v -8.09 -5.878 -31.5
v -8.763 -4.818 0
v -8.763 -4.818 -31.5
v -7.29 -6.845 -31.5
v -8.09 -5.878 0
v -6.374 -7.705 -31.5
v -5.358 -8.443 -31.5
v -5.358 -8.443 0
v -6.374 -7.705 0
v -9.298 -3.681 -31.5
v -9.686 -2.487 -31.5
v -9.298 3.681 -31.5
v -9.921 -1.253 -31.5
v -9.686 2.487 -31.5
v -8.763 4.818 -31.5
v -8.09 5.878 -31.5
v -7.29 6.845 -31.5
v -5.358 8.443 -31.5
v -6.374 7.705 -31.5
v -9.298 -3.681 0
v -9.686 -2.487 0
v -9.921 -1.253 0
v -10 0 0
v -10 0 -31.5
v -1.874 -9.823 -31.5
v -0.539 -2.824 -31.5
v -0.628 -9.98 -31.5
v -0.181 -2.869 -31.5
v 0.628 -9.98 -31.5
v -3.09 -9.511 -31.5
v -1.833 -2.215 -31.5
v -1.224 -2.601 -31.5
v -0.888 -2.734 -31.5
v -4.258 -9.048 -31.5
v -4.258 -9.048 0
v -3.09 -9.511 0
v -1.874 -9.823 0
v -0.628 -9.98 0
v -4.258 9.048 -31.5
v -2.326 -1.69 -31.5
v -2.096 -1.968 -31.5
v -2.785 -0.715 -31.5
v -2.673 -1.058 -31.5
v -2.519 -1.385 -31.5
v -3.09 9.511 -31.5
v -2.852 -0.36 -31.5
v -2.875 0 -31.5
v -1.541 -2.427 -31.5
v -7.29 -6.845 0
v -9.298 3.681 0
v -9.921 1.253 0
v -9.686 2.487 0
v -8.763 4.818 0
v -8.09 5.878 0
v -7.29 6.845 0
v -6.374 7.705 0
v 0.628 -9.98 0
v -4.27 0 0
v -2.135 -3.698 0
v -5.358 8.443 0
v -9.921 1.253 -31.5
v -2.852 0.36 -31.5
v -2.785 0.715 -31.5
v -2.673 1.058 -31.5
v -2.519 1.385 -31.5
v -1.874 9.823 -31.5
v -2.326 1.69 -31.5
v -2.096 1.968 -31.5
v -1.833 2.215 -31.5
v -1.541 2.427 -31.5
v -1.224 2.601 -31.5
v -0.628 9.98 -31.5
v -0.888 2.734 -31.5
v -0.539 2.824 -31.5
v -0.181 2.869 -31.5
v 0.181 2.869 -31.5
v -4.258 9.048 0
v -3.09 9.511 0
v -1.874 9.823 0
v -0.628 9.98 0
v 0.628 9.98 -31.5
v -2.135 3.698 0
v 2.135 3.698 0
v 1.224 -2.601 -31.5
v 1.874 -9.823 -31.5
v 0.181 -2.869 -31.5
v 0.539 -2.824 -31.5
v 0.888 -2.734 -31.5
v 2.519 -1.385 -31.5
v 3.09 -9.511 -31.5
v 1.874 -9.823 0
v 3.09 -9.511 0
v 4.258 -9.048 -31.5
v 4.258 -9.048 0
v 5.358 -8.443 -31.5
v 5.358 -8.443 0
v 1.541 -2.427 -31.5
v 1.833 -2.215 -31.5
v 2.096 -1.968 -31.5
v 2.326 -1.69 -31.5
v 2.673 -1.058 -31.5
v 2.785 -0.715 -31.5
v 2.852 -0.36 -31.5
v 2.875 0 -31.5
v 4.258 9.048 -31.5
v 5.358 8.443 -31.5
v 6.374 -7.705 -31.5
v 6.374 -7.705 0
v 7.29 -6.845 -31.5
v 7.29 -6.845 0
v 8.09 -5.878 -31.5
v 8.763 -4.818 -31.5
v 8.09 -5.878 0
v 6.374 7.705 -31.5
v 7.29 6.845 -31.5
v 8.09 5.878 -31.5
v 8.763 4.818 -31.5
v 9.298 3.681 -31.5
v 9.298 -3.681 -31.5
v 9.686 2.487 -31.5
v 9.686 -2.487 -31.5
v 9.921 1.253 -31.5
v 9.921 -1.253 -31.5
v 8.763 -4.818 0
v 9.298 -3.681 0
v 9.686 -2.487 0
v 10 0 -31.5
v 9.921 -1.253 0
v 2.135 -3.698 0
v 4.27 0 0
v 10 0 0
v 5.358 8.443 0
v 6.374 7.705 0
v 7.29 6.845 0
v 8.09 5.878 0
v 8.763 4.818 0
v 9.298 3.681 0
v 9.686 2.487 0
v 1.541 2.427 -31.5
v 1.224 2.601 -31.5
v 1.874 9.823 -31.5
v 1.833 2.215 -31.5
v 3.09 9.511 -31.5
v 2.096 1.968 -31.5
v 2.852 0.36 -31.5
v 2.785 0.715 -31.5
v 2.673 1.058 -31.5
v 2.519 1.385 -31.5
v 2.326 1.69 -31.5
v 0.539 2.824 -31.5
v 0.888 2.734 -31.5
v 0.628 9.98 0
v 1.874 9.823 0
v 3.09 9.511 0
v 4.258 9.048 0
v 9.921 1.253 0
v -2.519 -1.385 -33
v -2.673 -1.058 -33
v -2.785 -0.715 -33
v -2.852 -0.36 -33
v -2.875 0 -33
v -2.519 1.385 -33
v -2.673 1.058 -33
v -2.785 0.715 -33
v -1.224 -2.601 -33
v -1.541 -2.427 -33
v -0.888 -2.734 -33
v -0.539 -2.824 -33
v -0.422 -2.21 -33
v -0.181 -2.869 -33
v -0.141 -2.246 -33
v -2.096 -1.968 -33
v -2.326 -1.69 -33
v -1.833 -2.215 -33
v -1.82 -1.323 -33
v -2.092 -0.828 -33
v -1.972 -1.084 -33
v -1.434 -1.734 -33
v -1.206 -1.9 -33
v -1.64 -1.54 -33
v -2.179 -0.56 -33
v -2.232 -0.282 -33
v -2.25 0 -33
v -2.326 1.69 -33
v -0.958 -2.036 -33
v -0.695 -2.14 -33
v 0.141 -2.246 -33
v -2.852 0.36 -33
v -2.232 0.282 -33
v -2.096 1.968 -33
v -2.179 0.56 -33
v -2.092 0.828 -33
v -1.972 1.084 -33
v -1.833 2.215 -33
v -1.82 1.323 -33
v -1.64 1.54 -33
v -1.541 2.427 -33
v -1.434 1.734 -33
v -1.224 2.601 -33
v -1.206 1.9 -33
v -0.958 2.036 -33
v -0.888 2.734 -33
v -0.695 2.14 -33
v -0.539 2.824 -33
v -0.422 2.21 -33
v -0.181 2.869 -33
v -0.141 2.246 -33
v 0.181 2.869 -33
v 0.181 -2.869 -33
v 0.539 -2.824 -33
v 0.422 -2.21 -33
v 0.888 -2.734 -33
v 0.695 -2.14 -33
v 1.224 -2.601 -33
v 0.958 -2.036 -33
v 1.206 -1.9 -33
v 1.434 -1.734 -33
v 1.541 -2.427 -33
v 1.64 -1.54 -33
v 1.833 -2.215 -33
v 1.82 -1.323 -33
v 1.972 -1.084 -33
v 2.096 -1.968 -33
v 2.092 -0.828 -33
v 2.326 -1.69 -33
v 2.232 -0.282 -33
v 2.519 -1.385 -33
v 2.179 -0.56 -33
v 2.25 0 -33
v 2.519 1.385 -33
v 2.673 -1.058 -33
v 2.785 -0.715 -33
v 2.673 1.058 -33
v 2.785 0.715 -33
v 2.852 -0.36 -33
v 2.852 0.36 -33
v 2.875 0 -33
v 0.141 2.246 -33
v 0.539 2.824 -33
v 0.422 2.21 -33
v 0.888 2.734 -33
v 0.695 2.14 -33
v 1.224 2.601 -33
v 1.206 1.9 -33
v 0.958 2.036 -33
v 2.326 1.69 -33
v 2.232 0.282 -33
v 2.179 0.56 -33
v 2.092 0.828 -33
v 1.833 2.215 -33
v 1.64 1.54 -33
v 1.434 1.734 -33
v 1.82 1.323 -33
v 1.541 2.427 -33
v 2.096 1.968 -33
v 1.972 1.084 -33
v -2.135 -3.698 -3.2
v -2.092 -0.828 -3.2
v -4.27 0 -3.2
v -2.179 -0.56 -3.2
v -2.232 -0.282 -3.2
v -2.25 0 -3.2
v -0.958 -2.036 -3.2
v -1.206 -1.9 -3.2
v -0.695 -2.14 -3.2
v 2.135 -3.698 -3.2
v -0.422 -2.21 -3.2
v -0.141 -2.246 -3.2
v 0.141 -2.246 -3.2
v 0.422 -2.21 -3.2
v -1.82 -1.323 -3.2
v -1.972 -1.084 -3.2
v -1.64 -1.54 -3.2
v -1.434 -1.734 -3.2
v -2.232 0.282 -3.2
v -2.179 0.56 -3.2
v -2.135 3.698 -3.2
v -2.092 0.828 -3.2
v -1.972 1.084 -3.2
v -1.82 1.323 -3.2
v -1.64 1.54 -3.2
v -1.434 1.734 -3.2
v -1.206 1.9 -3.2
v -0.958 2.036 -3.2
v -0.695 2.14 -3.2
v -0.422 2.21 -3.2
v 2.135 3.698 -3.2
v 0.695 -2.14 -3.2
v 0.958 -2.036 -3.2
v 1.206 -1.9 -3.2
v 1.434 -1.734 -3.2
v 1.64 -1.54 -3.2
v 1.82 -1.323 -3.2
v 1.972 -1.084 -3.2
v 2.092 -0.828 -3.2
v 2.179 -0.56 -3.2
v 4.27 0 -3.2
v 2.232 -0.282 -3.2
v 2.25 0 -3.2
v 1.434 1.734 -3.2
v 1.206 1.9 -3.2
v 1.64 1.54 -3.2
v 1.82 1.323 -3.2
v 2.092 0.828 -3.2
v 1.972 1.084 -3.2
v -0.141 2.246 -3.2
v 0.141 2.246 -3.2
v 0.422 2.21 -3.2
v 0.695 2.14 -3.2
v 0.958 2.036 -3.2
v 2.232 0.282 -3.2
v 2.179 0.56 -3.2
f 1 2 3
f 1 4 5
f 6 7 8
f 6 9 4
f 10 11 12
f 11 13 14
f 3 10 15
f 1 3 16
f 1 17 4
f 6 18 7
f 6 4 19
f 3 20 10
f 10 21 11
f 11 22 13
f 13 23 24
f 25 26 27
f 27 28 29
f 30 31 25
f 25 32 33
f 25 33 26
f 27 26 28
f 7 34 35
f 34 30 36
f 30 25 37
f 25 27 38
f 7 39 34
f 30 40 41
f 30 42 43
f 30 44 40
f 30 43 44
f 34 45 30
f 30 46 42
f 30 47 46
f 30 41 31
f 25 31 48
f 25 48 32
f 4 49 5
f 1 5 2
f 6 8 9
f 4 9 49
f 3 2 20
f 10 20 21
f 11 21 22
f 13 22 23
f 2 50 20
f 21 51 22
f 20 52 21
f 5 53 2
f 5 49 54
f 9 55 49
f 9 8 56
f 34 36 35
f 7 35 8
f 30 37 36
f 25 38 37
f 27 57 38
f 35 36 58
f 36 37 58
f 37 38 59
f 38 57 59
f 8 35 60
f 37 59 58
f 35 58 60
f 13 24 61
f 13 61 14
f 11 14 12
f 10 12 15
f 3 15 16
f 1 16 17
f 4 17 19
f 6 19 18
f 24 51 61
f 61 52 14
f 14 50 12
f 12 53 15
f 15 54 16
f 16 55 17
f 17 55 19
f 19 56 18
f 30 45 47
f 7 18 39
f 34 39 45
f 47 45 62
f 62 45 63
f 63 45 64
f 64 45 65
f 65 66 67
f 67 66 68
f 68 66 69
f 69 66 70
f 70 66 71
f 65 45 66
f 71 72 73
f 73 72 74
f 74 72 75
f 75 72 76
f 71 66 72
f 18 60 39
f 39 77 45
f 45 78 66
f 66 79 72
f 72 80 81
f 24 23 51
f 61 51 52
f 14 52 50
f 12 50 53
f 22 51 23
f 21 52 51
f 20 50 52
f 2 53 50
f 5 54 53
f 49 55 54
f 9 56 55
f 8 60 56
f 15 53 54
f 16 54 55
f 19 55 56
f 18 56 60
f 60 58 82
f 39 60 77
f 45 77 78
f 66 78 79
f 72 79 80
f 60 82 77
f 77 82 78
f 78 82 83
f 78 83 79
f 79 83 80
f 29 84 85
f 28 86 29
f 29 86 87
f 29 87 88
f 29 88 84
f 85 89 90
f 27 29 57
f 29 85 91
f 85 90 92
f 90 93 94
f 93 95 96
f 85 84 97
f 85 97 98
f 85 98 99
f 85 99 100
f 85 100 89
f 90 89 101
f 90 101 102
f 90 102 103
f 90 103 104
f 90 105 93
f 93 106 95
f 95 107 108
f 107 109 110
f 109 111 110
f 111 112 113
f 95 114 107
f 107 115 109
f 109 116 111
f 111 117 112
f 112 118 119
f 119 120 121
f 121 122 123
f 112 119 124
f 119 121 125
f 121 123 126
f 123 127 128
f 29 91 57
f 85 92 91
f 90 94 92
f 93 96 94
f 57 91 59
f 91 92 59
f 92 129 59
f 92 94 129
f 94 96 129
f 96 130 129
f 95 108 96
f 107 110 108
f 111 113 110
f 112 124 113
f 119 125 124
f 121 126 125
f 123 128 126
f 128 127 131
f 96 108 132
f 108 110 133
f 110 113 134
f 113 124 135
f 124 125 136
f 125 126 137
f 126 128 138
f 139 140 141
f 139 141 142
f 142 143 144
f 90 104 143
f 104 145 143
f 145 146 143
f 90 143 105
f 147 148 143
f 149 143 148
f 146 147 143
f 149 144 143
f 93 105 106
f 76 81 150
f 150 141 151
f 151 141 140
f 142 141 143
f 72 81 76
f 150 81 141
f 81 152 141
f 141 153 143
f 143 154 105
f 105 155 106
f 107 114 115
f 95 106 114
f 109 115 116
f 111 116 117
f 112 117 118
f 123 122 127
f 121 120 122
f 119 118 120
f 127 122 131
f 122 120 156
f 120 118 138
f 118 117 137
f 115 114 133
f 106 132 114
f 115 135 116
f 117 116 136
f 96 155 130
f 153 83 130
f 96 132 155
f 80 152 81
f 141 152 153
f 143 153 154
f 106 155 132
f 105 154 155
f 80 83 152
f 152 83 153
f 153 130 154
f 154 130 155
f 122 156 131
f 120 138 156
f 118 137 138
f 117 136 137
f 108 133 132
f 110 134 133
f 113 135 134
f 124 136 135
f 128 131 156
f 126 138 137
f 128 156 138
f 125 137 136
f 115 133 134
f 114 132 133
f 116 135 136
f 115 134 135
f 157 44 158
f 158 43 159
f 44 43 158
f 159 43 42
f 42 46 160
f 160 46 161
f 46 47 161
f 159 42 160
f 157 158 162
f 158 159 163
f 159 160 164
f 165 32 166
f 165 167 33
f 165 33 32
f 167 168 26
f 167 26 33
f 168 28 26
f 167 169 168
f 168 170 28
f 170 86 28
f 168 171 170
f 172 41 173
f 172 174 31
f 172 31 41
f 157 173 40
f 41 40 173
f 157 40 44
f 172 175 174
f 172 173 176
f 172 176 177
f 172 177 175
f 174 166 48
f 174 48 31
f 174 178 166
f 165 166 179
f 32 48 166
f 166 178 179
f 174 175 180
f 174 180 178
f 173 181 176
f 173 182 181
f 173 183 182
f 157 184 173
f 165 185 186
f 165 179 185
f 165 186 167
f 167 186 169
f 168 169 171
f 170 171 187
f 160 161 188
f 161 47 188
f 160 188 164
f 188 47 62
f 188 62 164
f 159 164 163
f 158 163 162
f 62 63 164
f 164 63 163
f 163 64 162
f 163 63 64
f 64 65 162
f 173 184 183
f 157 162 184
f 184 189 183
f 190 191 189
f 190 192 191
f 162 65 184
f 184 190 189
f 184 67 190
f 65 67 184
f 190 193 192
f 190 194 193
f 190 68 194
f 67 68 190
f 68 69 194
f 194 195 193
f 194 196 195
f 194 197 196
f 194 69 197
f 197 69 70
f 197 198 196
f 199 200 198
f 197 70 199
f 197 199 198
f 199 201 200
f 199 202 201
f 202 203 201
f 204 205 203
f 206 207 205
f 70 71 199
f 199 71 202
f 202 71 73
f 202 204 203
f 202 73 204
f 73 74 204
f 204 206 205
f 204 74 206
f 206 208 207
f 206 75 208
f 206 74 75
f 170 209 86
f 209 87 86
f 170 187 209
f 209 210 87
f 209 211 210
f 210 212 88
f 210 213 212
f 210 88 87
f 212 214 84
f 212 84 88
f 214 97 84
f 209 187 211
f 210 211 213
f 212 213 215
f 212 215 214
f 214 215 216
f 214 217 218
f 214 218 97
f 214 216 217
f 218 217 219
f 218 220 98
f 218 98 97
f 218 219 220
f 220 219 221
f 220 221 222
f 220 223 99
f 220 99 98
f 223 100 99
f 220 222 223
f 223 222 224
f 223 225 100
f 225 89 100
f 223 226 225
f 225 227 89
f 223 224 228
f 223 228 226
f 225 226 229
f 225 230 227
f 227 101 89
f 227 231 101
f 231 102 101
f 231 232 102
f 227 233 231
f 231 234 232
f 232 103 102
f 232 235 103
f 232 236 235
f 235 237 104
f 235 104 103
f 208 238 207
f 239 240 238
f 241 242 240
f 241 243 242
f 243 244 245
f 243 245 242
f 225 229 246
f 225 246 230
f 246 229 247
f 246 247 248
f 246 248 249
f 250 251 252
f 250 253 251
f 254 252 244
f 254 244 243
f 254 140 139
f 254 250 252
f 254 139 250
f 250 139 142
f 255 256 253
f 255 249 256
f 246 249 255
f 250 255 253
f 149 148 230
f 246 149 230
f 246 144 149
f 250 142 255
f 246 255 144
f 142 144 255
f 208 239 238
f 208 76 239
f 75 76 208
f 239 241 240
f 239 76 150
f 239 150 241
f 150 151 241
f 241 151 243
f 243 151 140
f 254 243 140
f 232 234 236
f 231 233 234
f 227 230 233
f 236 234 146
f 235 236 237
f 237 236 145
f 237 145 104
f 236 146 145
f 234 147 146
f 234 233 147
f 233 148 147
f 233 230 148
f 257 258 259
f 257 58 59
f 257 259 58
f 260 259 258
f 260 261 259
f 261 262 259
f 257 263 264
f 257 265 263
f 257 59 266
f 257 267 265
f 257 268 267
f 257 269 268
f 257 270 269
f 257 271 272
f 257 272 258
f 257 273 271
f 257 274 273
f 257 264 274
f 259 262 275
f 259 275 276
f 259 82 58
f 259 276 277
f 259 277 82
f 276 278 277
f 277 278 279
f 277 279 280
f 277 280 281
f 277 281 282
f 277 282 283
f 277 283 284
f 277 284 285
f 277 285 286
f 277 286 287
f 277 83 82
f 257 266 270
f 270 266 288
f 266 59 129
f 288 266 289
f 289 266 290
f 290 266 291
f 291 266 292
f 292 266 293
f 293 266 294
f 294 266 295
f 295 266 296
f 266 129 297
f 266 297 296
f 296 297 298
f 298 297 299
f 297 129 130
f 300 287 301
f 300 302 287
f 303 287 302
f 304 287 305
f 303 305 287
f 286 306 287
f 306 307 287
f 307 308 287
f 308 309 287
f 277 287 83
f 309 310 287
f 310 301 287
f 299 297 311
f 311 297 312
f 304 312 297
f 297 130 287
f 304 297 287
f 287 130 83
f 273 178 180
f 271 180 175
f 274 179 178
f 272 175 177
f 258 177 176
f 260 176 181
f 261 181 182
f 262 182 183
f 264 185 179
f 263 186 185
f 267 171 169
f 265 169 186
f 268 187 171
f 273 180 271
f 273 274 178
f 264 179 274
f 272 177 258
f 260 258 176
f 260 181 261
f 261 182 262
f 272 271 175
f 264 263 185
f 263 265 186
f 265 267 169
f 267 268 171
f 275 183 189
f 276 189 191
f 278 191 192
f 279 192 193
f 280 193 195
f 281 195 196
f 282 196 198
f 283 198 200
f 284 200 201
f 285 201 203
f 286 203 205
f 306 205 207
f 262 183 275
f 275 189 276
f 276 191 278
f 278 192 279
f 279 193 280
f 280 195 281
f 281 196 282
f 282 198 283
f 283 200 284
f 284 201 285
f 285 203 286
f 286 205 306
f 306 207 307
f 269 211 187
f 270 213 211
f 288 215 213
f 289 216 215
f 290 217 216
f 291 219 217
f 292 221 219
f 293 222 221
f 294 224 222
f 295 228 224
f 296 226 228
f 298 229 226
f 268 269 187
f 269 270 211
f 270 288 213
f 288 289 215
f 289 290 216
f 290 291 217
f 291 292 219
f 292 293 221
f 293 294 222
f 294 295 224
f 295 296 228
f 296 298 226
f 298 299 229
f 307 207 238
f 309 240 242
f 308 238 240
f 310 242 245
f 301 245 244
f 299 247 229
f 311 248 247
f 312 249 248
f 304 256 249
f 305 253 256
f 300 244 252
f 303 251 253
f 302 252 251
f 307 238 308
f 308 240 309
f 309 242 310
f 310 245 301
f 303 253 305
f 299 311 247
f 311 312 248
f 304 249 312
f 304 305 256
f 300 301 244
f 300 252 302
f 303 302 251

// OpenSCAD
$fn = 50;

difference() {
	union() {
		translate(v = [0, 0, -31.5]) {
			cylinder(h = 31.5, r = 10.0);
		}
		#translate(v = [0, 0, -33.0]) {
			cylinder(h = 33, r = 2.875);
		}
	}
	union() {
		translate(v = [0, 0, 0]) {
			rotate(a = [0, 0, 0]) {
				difference() {
					union() {
						translate(v = [0, 0, -3.2]) {
							linear_extrude(height = 3.2) {
								polygon(points = [[4.2698, 0.0], [2.1349000000000005, 3.697755269078796], [-2.134899999999999, 3.6977552690787965], [-4.2698, 5.228996902999369e-16], [-2.134900000000002, -3.6977552690787956], [2.1348999999999974, -3.697755269078798]]);
							}
						}
					}
					union();
				}
			}
		}
		#translate(v = [0, 0, -100.0]) {
			cylinder(h = 200, r = 2.25);
		}
	}
}
